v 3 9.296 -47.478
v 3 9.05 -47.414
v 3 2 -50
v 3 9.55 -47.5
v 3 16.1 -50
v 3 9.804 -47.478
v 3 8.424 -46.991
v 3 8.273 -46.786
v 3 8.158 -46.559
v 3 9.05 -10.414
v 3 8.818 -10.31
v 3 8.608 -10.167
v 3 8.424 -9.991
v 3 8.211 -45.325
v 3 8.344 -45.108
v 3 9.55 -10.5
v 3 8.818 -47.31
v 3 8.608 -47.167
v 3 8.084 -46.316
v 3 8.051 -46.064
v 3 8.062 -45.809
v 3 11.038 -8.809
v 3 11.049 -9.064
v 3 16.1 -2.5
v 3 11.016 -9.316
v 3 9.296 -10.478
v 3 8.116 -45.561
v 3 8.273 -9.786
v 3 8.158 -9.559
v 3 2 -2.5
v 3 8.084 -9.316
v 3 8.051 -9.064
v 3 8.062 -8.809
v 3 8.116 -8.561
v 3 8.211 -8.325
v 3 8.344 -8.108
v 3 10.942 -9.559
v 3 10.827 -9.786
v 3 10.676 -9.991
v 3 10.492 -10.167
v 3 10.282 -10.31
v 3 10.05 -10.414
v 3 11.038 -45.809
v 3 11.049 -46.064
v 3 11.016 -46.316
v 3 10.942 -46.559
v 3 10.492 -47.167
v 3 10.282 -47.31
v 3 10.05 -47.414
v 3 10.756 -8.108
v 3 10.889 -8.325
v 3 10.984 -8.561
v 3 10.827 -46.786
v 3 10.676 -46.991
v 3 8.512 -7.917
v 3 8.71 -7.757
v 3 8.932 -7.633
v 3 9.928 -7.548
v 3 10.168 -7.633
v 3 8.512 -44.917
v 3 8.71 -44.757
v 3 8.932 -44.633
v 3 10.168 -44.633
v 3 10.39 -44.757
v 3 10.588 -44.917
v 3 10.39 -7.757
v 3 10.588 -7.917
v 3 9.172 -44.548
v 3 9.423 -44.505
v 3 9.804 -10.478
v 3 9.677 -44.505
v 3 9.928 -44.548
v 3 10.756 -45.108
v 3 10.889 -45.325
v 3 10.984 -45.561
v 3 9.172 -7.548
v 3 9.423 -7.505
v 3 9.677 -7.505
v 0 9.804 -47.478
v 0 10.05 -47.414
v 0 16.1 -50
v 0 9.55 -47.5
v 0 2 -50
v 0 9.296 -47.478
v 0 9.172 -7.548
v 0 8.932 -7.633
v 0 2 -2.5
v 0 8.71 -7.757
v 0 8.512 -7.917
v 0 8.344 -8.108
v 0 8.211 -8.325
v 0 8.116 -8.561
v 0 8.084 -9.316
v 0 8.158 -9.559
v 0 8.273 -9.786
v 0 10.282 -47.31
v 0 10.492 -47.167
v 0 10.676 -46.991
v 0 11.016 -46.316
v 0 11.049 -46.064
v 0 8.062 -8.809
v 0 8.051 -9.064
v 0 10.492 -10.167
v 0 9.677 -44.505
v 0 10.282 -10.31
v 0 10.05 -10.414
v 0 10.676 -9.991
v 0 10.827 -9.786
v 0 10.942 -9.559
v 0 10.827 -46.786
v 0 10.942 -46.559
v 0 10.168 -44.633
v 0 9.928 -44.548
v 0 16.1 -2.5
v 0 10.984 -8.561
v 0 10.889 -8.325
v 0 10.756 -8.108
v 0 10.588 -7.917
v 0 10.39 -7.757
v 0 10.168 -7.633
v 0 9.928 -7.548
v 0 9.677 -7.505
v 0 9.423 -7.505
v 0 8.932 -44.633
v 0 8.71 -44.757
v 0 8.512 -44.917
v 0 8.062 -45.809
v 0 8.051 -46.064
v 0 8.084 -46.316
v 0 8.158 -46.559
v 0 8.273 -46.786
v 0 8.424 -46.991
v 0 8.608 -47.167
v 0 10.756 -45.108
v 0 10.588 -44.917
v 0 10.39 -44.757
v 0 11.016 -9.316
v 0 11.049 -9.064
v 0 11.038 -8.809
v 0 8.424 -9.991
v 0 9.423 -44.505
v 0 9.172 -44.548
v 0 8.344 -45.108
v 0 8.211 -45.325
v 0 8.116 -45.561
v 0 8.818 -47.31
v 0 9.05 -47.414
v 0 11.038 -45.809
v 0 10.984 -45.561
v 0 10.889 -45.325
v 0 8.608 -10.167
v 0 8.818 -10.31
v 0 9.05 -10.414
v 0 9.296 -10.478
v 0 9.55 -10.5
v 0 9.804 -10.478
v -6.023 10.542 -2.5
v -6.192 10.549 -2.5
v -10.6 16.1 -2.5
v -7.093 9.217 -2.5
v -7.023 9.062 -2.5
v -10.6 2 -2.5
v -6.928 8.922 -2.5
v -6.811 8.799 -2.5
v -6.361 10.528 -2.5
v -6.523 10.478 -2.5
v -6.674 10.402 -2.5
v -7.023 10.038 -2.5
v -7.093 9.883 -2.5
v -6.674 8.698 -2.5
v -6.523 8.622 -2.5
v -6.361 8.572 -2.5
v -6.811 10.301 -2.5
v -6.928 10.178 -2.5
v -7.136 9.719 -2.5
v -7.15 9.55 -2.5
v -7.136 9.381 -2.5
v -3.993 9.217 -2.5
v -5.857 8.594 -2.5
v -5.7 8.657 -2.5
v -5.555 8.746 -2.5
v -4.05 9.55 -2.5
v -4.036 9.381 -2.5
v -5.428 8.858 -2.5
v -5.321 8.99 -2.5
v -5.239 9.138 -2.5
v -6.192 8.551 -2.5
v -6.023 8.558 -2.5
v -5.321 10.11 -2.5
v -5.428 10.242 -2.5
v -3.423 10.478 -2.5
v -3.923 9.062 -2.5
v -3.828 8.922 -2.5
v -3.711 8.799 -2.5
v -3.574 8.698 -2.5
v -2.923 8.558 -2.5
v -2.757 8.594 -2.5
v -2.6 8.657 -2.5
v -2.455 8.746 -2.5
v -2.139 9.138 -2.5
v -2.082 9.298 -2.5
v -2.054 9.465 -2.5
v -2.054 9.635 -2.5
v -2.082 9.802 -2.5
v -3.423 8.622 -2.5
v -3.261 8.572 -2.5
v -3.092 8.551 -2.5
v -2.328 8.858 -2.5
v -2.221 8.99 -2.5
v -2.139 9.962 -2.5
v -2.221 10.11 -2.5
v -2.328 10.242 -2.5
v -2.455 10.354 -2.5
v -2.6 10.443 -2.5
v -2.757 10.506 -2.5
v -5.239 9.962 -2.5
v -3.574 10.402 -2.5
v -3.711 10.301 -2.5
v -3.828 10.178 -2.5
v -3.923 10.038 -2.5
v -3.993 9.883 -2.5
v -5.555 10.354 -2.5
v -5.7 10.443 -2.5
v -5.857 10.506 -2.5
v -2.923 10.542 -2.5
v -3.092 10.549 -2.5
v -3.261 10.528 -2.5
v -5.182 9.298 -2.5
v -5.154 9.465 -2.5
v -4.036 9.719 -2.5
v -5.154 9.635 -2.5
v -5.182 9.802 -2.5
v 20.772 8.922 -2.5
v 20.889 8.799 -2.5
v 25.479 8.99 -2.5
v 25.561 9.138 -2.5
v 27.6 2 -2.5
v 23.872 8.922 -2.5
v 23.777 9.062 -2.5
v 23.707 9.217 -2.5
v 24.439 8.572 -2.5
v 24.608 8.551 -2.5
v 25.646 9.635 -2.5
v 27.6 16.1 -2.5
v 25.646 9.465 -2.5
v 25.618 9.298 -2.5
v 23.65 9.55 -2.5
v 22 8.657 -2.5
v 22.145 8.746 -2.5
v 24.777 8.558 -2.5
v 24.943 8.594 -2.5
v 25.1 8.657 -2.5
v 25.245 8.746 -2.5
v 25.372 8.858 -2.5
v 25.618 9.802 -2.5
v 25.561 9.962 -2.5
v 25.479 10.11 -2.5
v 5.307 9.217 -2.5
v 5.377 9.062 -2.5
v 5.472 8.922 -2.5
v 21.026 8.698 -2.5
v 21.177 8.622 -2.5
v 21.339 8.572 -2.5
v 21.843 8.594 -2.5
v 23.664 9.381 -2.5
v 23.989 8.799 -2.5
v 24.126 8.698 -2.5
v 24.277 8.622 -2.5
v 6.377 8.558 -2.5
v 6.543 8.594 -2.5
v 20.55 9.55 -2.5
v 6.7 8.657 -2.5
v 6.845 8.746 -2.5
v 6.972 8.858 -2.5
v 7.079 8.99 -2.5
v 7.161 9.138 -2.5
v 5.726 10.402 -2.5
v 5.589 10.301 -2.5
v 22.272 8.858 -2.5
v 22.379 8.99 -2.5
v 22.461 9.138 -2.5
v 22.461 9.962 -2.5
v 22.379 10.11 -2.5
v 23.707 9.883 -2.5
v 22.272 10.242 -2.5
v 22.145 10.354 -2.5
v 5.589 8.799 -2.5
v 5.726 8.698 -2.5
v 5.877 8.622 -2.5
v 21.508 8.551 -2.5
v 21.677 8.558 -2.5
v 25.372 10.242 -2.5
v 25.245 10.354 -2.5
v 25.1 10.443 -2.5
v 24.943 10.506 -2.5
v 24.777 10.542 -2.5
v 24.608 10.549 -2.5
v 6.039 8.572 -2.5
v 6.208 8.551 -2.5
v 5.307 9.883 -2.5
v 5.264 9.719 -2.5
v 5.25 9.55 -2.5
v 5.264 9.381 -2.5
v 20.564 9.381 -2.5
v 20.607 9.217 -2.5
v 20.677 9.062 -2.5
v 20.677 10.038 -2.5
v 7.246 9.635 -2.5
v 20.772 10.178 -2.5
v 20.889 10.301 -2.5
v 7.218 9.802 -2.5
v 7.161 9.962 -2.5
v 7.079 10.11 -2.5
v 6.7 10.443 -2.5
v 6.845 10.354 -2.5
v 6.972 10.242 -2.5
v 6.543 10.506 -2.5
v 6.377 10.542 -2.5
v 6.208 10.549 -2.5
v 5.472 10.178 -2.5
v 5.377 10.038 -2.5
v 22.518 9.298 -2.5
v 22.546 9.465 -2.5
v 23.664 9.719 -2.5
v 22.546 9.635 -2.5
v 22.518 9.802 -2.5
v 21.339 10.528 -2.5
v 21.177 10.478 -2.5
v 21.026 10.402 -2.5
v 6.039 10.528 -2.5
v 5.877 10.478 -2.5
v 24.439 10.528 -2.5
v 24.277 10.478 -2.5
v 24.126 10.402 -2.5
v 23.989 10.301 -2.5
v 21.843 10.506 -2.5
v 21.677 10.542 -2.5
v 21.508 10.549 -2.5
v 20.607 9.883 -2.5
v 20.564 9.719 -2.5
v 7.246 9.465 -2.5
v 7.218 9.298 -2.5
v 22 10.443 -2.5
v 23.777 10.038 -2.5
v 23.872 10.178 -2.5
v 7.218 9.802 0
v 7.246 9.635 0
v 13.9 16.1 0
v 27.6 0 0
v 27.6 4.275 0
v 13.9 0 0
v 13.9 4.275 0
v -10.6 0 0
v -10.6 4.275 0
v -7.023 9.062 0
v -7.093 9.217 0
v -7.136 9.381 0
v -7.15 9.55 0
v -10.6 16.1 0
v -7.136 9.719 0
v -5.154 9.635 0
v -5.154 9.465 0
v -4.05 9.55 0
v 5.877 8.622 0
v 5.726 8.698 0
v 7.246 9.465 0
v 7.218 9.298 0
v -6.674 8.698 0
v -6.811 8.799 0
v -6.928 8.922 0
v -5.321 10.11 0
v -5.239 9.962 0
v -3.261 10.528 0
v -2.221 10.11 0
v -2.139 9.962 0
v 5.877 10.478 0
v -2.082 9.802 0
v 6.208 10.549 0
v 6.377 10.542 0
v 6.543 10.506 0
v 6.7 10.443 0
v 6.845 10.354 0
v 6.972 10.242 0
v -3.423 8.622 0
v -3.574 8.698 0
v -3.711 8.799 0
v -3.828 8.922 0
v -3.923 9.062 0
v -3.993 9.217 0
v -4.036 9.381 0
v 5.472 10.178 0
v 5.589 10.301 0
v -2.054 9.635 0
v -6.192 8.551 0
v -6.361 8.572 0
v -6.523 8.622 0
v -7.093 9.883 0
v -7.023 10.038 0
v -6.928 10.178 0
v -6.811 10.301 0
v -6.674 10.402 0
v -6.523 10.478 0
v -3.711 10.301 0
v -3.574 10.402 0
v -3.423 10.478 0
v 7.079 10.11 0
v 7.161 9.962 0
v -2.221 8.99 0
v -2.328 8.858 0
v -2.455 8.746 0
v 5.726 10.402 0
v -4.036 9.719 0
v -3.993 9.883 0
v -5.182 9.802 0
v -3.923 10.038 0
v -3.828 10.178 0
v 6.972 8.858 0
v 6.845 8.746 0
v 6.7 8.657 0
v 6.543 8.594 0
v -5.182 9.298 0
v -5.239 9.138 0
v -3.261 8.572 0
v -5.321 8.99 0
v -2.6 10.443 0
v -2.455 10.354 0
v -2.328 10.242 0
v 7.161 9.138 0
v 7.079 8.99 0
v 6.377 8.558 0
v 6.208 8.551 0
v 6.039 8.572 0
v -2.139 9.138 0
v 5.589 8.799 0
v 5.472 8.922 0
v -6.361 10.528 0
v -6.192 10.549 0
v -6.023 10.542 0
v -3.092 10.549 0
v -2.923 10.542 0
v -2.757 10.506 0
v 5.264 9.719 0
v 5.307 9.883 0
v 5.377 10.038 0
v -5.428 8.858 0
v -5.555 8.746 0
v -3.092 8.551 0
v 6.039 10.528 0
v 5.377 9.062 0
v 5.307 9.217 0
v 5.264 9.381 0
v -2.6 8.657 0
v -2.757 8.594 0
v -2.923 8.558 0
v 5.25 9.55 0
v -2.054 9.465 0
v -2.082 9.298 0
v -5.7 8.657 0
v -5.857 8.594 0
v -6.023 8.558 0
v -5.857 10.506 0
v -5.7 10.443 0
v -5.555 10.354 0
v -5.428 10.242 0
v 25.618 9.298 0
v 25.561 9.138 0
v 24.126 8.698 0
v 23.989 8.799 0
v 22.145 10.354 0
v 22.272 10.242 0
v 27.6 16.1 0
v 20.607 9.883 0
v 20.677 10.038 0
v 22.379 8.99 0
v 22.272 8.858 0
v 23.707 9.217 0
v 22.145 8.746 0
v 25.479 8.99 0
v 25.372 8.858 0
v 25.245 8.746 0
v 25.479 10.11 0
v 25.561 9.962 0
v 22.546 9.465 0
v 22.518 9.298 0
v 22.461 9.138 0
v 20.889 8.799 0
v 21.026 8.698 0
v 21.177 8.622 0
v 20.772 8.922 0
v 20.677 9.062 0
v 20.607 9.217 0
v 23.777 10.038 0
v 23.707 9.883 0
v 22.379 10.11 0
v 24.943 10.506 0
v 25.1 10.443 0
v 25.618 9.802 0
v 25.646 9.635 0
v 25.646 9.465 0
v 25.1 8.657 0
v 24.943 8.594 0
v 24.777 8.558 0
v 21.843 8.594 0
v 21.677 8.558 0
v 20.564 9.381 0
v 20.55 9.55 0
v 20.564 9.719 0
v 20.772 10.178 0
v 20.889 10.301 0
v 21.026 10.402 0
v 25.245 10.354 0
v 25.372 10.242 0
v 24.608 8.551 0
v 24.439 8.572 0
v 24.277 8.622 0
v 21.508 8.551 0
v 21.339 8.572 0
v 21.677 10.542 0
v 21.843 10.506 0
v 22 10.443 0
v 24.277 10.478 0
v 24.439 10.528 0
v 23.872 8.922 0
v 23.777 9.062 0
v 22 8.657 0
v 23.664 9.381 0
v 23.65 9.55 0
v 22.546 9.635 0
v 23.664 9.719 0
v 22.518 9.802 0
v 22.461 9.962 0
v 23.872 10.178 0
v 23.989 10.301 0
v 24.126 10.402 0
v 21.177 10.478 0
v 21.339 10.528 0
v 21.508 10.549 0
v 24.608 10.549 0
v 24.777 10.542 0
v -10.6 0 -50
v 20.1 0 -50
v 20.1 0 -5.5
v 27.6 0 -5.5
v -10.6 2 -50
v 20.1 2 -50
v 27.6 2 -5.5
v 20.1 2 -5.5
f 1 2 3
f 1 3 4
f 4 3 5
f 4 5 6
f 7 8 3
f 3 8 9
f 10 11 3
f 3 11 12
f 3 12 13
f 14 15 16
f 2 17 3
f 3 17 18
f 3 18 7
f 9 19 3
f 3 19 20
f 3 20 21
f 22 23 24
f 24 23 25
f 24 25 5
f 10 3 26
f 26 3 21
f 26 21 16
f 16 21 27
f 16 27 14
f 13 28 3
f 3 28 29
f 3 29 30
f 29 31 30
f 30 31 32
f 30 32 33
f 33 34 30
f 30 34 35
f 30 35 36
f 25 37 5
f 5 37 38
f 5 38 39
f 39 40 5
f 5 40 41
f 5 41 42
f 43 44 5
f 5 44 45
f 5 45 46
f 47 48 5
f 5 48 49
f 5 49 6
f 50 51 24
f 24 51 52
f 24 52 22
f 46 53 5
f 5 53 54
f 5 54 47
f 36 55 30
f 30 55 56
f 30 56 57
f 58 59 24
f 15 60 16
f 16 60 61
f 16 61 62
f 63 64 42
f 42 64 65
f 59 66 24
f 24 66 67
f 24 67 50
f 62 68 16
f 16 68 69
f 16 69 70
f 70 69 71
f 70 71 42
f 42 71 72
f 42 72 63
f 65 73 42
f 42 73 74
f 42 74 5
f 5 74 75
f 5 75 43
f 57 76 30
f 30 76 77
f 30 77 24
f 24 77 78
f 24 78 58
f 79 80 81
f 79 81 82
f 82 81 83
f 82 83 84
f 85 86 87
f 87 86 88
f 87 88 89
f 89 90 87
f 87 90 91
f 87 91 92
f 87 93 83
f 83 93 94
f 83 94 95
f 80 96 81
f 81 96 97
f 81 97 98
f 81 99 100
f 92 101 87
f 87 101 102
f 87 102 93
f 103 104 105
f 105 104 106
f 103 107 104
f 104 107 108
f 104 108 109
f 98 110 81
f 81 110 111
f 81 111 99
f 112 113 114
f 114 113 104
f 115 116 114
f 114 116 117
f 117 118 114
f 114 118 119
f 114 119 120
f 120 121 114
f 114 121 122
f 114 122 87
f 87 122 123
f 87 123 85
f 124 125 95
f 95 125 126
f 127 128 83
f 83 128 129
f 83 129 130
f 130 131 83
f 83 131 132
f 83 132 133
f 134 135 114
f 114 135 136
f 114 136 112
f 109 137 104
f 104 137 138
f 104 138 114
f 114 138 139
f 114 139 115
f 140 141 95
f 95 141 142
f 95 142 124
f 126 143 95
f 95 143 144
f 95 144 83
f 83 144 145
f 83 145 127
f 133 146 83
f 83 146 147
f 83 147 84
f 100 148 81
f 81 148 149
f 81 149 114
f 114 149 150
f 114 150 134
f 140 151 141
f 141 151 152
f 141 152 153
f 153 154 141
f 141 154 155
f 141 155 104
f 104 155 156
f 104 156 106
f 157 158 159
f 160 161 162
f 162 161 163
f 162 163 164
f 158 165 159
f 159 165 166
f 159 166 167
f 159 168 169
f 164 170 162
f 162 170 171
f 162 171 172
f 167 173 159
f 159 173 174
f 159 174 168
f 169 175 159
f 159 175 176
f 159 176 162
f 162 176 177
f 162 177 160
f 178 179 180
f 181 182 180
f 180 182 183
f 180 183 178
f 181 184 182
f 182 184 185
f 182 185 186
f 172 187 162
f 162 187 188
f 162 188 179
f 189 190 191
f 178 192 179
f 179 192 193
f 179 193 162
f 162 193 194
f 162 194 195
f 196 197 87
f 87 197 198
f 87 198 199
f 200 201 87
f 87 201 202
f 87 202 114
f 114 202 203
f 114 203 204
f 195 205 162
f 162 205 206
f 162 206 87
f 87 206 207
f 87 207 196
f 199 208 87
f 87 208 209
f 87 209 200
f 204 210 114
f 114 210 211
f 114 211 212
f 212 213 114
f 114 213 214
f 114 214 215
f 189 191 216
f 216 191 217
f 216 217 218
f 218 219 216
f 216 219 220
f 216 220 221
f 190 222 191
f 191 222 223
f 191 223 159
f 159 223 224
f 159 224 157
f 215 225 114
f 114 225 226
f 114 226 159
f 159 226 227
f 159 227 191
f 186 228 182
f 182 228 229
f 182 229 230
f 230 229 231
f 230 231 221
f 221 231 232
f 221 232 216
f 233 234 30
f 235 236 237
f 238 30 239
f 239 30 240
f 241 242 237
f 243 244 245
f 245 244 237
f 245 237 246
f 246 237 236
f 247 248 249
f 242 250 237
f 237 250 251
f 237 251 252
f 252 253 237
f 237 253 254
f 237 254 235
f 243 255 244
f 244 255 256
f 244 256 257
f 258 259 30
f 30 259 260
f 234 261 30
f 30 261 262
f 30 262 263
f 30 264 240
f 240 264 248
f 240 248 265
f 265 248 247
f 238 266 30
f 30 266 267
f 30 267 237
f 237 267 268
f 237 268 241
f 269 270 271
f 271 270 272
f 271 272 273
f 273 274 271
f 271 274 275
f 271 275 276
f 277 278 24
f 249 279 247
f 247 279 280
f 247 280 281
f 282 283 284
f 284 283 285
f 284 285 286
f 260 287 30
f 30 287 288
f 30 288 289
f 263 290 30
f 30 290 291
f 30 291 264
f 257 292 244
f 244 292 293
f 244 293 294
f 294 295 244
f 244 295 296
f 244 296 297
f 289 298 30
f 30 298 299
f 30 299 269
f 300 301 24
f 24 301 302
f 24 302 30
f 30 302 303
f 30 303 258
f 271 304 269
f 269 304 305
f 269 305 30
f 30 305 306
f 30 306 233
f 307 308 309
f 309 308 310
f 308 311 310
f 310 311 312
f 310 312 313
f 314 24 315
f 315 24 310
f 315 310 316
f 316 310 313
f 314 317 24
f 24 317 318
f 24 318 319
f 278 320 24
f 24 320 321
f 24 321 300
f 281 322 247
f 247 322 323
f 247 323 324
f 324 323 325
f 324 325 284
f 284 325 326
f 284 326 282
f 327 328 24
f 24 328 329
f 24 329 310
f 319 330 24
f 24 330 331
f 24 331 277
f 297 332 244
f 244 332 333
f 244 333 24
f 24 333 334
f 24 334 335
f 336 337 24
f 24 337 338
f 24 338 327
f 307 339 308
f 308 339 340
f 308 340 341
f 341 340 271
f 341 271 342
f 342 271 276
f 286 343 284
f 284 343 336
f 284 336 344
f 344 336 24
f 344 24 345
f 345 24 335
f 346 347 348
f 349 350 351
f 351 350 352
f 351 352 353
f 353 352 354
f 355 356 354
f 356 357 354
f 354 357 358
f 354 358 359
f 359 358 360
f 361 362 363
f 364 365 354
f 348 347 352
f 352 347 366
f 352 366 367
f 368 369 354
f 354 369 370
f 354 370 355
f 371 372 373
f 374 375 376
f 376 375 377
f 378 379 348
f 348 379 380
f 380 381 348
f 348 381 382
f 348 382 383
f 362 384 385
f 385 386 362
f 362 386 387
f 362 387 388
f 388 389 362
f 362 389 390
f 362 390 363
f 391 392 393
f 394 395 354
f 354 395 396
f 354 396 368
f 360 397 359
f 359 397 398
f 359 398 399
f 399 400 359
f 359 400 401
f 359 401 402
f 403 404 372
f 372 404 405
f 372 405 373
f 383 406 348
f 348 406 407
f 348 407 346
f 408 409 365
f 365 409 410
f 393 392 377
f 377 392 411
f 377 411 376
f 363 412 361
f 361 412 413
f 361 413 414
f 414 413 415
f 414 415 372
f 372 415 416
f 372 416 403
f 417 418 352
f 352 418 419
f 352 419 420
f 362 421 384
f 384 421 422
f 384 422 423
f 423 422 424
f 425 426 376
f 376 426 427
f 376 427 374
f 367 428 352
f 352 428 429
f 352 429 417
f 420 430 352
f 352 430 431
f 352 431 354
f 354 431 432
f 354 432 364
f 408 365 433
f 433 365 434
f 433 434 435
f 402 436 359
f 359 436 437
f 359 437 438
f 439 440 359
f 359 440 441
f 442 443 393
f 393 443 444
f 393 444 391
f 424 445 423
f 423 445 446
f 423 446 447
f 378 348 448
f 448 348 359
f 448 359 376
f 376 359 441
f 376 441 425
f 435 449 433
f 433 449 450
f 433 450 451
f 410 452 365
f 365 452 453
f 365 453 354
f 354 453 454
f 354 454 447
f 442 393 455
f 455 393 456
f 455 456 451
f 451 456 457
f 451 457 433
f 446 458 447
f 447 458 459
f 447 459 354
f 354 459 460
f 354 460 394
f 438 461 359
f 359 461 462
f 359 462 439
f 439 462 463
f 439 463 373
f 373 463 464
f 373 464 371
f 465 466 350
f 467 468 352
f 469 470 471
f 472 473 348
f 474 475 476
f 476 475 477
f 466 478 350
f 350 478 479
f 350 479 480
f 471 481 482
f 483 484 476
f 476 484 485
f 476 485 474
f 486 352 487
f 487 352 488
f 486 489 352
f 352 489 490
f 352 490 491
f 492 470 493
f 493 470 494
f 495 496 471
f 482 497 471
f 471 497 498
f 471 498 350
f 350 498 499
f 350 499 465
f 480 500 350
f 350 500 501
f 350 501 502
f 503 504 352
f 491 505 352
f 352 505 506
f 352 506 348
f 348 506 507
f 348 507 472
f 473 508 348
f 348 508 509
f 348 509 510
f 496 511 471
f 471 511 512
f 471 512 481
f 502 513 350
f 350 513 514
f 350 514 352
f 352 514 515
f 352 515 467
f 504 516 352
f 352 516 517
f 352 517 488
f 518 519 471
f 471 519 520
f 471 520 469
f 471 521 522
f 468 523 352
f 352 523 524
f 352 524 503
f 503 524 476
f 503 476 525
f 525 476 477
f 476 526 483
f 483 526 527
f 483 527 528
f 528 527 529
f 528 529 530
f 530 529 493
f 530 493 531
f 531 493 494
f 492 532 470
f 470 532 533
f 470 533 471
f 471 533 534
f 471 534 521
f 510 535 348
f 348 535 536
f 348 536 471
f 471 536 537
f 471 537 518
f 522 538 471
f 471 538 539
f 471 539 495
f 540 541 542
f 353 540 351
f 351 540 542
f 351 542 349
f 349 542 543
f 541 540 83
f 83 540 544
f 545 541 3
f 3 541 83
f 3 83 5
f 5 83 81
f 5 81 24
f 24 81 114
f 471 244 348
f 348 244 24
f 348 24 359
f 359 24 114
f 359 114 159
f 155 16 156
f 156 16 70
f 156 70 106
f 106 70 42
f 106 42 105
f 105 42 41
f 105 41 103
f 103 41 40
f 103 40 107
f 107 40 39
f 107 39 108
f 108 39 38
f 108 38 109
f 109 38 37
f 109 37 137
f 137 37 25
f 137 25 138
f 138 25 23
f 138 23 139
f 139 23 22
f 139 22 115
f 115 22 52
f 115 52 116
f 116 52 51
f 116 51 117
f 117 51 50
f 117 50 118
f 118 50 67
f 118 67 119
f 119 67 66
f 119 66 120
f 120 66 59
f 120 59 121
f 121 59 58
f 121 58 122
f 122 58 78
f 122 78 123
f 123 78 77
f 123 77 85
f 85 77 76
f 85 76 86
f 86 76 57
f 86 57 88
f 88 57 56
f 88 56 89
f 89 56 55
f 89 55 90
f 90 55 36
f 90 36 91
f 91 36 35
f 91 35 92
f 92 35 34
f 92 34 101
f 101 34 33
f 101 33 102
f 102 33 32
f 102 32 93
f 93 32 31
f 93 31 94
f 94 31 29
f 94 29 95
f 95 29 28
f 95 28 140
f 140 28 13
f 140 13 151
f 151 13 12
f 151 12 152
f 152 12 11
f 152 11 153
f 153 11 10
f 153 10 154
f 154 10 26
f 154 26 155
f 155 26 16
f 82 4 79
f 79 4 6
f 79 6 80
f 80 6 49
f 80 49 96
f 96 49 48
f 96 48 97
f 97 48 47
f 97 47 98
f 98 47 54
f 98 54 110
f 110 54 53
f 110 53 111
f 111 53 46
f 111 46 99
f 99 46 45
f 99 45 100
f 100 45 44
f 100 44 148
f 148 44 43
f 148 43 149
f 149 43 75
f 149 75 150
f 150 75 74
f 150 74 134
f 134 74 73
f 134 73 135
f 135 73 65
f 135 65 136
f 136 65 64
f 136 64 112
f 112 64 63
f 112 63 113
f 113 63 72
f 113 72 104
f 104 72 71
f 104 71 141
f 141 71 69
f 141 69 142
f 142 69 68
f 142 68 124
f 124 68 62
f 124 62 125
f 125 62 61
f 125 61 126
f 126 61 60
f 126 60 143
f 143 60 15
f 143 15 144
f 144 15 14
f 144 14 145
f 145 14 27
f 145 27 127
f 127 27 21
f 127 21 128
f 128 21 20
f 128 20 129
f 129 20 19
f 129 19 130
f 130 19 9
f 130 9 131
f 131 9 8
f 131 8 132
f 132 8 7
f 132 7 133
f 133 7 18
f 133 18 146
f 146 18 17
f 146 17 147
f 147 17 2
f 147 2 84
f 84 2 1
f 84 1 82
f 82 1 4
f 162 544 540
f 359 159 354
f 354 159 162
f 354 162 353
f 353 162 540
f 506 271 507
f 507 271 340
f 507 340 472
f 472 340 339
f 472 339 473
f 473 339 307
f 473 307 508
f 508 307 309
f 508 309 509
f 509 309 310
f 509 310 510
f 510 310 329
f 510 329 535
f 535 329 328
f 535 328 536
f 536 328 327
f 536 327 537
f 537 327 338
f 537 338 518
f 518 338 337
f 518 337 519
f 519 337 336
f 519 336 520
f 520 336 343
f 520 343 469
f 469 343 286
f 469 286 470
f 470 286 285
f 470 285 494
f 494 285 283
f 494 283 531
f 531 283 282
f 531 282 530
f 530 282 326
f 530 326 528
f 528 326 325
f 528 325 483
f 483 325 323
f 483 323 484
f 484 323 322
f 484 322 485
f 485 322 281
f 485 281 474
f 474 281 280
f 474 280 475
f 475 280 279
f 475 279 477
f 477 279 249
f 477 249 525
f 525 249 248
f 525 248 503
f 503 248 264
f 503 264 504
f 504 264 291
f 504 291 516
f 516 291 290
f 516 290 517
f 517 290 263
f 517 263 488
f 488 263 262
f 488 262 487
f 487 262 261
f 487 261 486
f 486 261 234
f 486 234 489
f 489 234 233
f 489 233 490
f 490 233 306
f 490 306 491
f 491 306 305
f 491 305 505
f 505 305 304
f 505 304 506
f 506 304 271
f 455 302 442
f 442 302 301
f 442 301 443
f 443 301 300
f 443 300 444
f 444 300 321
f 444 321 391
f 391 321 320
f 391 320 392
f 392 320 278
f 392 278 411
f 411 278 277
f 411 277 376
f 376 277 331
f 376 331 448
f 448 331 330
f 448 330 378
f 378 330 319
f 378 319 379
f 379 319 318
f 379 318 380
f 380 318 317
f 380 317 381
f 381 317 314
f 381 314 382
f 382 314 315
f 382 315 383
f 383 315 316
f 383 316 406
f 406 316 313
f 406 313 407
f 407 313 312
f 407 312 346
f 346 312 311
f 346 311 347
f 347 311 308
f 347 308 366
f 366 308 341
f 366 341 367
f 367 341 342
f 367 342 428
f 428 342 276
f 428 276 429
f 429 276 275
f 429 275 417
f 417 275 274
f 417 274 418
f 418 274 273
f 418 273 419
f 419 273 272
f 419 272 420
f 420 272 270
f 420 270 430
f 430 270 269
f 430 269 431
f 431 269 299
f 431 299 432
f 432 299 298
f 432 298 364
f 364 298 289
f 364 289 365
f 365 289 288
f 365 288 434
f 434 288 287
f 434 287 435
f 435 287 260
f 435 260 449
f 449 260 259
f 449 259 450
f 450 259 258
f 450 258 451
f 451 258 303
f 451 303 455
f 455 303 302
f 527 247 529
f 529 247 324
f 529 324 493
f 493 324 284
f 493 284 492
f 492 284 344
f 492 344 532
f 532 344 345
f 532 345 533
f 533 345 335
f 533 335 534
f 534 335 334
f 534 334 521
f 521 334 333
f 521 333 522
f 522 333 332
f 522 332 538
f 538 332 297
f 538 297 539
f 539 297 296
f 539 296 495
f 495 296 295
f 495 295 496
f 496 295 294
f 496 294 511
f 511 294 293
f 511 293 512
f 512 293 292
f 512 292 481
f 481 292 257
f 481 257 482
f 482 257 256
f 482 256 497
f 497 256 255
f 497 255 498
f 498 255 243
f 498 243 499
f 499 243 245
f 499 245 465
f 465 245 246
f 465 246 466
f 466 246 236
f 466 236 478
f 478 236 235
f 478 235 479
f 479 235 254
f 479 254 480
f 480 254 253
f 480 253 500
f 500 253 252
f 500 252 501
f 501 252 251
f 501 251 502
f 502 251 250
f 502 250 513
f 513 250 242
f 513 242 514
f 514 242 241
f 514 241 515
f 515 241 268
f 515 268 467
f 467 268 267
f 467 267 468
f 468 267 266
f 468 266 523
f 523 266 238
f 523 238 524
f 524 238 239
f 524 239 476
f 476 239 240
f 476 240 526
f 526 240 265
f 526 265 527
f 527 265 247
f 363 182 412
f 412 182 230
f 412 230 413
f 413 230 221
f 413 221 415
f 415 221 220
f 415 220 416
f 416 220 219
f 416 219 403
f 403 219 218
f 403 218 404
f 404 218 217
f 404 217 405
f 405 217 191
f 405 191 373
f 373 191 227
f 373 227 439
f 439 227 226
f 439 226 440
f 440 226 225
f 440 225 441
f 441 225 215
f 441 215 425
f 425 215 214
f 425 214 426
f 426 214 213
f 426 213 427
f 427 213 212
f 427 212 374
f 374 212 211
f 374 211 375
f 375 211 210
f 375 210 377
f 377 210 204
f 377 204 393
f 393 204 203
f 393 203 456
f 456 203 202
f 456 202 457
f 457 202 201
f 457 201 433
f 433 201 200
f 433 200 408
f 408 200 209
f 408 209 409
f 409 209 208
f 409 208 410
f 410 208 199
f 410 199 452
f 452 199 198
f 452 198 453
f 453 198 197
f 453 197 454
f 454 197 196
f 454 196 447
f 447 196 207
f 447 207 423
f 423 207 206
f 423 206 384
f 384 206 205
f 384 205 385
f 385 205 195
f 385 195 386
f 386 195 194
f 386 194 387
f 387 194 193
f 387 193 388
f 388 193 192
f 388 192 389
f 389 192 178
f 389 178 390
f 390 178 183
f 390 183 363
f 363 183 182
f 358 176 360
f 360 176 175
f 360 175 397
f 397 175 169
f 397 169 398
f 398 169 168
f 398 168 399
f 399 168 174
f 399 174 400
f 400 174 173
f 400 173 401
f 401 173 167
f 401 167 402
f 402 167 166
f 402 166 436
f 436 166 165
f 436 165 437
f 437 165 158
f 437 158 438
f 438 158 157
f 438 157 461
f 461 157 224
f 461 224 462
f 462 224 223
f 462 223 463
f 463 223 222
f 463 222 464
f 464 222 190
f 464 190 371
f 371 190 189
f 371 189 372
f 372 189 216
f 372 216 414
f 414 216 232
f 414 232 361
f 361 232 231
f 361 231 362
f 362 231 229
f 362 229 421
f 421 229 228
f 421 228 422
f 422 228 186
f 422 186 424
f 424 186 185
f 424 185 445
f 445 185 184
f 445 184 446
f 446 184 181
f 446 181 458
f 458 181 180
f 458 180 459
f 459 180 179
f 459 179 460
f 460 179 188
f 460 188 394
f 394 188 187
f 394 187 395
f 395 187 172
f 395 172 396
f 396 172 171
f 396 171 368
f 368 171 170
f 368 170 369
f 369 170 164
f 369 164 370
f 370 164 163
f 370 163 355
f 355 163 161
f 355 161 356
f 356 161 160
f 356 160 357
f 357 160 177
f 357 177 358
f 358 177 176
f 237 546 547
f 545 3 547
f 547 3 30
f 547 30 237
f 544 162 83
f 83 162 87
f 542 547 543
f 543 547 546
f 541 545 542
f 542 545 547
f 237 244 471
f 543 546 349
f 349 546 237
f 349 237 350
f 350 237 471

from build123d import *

# Parameters (mm, degrees)
SKETCH1_W                = 50
SKETCH1_H                = 16.1
BOSS_EXTRUDE1_DEPTH      = 3
SKETCH3_R                = 1.5
CUT_EXTRUDE1_DEPTH       = 4
SKETCH4_W                = 2.5
SKETCH4_H                = 16.1
BOSS_EXTRUDE2_DEPTH      = 35.4
BOSS_EXTRUDE2_DEPTH_BACK = 13.6
SKETCH6_R                = 1
CUT_EXTRUDE2_DEPTH       = 45
SKETCH10_W               = 49
SKETCH10_H               = 2
BOSS_EXTRUDE4_DEPTH      = 47.5
CUT_EXTRUDE5_DEPTH       = 15.1
CUT_EXTRUDE5_DEPTH_BACK  = 3


with BuildPart() as part:
    # Sketch1 → Boss-Extrude1 (new body)
    with BuildSketch(Plane(origin=(0, 0, 0), x_dir=(0, 0, -1), z_dir=(1, 0, 0))):
        with Locations((25, 8.05)):
            Rectangle(SKETCH1_W, SKETCH1_H)
    extrude(amount=BOSS_EXTRUDE1_DEPTH)

    # Sketch3 → Cut-Extrude1 (cut, through all)
    with BuildSketch(Plane(origin=(3, 0, 0), x_dir=(0, 0, -1), z_dir=(1, 0, 0))):
        with Locations((46, 9.55)):
            Circle(SKETCH3_R)
        with Locations((9, 9.55)):
            Circle(SKETCH3_R)
    extrude(amount=-CUT_EXTRUDE1_DEPTH, mode=Mode.SUBTRACT)

    # Sketch4 → Boss-Extrude2 (add, two sides)
    with BuildSketch(Plane(origin=(3, 0, 0), x_dir=(0, 0, -1), z_dir=(1, 0, 0))) as boss_extrude2_sk:
        with Locations((1.25, 8.05)):
            Rectangle(SKETCH4_W, SKETCH4_H)
    extrude(amount=BOSS_EXTRUDE2_DEPTH)
    extrude(boss_extrude2_sk.sketch, amount=-BOSS_EXTRUDE2_DEPTH_BACK)

    # Sketch6 → Cut-Extrude2 (cut)
    with BuildSketch(Plane(origin=(0, 0, -2.5), x_dir=(-1, 0, 0), z_dir=(0, 0, -1))):
        with Locations((6.15, 9.55)):
            Circle(SKETCH6_R)
        with Locations((3.05, 9.55)):
            Circle(SKETCH6_R)
        with Locations((-6.25, 9.55)):
            Circle(SKETCH6_R)
        with Locations((-21.55, 9.55)):
            Circle(SKETCH6_R)
        with Locations((-24.65, 9.55)):
            Circle(SKETCH6_R)
    extrude(amount=-CUT_EXTRUDE2_DEPTH, mode=Mode.SUBTRACT)

    # Sketch10 → Boss-Extrude4 (add)
    with BuildSketch(Plane(origin=(0, 0, -2.5), x_dir=(-1, 0, 0), z_dir=(0, 0, -1))):
        with Locations((-13.9, 1)):
            Rectangle(SKETCH10_W, SKETCH10_H)
    extrude(amount=BOSS_EXTRUDE4_DEPTH)

    # Sketch13 → Cut-Extrude5 (cut, two sides)
    with BuildSketch(Plane(origin=(0, 2, 0), x_dir=(1, 0, 0), z_dir=(0, 1, 0))) as cut_extrude5_sk:
        Polygon((20.1, 5.5), (20.1, 50), (38.4, 50), (38.4, 0), (27.6, 0), (27.6, 5.5), align=None)
    extrude(amount=CUT_EXTRUDE5_DEPTH, mode=Mode.SUBTRACT)
    extrude(cut_extrude5_sk.sketch, amount=-CUT_EXTRUDE5_DEPTH_BACK, mode=Mode.SUBTRACT)


solid = part.part
